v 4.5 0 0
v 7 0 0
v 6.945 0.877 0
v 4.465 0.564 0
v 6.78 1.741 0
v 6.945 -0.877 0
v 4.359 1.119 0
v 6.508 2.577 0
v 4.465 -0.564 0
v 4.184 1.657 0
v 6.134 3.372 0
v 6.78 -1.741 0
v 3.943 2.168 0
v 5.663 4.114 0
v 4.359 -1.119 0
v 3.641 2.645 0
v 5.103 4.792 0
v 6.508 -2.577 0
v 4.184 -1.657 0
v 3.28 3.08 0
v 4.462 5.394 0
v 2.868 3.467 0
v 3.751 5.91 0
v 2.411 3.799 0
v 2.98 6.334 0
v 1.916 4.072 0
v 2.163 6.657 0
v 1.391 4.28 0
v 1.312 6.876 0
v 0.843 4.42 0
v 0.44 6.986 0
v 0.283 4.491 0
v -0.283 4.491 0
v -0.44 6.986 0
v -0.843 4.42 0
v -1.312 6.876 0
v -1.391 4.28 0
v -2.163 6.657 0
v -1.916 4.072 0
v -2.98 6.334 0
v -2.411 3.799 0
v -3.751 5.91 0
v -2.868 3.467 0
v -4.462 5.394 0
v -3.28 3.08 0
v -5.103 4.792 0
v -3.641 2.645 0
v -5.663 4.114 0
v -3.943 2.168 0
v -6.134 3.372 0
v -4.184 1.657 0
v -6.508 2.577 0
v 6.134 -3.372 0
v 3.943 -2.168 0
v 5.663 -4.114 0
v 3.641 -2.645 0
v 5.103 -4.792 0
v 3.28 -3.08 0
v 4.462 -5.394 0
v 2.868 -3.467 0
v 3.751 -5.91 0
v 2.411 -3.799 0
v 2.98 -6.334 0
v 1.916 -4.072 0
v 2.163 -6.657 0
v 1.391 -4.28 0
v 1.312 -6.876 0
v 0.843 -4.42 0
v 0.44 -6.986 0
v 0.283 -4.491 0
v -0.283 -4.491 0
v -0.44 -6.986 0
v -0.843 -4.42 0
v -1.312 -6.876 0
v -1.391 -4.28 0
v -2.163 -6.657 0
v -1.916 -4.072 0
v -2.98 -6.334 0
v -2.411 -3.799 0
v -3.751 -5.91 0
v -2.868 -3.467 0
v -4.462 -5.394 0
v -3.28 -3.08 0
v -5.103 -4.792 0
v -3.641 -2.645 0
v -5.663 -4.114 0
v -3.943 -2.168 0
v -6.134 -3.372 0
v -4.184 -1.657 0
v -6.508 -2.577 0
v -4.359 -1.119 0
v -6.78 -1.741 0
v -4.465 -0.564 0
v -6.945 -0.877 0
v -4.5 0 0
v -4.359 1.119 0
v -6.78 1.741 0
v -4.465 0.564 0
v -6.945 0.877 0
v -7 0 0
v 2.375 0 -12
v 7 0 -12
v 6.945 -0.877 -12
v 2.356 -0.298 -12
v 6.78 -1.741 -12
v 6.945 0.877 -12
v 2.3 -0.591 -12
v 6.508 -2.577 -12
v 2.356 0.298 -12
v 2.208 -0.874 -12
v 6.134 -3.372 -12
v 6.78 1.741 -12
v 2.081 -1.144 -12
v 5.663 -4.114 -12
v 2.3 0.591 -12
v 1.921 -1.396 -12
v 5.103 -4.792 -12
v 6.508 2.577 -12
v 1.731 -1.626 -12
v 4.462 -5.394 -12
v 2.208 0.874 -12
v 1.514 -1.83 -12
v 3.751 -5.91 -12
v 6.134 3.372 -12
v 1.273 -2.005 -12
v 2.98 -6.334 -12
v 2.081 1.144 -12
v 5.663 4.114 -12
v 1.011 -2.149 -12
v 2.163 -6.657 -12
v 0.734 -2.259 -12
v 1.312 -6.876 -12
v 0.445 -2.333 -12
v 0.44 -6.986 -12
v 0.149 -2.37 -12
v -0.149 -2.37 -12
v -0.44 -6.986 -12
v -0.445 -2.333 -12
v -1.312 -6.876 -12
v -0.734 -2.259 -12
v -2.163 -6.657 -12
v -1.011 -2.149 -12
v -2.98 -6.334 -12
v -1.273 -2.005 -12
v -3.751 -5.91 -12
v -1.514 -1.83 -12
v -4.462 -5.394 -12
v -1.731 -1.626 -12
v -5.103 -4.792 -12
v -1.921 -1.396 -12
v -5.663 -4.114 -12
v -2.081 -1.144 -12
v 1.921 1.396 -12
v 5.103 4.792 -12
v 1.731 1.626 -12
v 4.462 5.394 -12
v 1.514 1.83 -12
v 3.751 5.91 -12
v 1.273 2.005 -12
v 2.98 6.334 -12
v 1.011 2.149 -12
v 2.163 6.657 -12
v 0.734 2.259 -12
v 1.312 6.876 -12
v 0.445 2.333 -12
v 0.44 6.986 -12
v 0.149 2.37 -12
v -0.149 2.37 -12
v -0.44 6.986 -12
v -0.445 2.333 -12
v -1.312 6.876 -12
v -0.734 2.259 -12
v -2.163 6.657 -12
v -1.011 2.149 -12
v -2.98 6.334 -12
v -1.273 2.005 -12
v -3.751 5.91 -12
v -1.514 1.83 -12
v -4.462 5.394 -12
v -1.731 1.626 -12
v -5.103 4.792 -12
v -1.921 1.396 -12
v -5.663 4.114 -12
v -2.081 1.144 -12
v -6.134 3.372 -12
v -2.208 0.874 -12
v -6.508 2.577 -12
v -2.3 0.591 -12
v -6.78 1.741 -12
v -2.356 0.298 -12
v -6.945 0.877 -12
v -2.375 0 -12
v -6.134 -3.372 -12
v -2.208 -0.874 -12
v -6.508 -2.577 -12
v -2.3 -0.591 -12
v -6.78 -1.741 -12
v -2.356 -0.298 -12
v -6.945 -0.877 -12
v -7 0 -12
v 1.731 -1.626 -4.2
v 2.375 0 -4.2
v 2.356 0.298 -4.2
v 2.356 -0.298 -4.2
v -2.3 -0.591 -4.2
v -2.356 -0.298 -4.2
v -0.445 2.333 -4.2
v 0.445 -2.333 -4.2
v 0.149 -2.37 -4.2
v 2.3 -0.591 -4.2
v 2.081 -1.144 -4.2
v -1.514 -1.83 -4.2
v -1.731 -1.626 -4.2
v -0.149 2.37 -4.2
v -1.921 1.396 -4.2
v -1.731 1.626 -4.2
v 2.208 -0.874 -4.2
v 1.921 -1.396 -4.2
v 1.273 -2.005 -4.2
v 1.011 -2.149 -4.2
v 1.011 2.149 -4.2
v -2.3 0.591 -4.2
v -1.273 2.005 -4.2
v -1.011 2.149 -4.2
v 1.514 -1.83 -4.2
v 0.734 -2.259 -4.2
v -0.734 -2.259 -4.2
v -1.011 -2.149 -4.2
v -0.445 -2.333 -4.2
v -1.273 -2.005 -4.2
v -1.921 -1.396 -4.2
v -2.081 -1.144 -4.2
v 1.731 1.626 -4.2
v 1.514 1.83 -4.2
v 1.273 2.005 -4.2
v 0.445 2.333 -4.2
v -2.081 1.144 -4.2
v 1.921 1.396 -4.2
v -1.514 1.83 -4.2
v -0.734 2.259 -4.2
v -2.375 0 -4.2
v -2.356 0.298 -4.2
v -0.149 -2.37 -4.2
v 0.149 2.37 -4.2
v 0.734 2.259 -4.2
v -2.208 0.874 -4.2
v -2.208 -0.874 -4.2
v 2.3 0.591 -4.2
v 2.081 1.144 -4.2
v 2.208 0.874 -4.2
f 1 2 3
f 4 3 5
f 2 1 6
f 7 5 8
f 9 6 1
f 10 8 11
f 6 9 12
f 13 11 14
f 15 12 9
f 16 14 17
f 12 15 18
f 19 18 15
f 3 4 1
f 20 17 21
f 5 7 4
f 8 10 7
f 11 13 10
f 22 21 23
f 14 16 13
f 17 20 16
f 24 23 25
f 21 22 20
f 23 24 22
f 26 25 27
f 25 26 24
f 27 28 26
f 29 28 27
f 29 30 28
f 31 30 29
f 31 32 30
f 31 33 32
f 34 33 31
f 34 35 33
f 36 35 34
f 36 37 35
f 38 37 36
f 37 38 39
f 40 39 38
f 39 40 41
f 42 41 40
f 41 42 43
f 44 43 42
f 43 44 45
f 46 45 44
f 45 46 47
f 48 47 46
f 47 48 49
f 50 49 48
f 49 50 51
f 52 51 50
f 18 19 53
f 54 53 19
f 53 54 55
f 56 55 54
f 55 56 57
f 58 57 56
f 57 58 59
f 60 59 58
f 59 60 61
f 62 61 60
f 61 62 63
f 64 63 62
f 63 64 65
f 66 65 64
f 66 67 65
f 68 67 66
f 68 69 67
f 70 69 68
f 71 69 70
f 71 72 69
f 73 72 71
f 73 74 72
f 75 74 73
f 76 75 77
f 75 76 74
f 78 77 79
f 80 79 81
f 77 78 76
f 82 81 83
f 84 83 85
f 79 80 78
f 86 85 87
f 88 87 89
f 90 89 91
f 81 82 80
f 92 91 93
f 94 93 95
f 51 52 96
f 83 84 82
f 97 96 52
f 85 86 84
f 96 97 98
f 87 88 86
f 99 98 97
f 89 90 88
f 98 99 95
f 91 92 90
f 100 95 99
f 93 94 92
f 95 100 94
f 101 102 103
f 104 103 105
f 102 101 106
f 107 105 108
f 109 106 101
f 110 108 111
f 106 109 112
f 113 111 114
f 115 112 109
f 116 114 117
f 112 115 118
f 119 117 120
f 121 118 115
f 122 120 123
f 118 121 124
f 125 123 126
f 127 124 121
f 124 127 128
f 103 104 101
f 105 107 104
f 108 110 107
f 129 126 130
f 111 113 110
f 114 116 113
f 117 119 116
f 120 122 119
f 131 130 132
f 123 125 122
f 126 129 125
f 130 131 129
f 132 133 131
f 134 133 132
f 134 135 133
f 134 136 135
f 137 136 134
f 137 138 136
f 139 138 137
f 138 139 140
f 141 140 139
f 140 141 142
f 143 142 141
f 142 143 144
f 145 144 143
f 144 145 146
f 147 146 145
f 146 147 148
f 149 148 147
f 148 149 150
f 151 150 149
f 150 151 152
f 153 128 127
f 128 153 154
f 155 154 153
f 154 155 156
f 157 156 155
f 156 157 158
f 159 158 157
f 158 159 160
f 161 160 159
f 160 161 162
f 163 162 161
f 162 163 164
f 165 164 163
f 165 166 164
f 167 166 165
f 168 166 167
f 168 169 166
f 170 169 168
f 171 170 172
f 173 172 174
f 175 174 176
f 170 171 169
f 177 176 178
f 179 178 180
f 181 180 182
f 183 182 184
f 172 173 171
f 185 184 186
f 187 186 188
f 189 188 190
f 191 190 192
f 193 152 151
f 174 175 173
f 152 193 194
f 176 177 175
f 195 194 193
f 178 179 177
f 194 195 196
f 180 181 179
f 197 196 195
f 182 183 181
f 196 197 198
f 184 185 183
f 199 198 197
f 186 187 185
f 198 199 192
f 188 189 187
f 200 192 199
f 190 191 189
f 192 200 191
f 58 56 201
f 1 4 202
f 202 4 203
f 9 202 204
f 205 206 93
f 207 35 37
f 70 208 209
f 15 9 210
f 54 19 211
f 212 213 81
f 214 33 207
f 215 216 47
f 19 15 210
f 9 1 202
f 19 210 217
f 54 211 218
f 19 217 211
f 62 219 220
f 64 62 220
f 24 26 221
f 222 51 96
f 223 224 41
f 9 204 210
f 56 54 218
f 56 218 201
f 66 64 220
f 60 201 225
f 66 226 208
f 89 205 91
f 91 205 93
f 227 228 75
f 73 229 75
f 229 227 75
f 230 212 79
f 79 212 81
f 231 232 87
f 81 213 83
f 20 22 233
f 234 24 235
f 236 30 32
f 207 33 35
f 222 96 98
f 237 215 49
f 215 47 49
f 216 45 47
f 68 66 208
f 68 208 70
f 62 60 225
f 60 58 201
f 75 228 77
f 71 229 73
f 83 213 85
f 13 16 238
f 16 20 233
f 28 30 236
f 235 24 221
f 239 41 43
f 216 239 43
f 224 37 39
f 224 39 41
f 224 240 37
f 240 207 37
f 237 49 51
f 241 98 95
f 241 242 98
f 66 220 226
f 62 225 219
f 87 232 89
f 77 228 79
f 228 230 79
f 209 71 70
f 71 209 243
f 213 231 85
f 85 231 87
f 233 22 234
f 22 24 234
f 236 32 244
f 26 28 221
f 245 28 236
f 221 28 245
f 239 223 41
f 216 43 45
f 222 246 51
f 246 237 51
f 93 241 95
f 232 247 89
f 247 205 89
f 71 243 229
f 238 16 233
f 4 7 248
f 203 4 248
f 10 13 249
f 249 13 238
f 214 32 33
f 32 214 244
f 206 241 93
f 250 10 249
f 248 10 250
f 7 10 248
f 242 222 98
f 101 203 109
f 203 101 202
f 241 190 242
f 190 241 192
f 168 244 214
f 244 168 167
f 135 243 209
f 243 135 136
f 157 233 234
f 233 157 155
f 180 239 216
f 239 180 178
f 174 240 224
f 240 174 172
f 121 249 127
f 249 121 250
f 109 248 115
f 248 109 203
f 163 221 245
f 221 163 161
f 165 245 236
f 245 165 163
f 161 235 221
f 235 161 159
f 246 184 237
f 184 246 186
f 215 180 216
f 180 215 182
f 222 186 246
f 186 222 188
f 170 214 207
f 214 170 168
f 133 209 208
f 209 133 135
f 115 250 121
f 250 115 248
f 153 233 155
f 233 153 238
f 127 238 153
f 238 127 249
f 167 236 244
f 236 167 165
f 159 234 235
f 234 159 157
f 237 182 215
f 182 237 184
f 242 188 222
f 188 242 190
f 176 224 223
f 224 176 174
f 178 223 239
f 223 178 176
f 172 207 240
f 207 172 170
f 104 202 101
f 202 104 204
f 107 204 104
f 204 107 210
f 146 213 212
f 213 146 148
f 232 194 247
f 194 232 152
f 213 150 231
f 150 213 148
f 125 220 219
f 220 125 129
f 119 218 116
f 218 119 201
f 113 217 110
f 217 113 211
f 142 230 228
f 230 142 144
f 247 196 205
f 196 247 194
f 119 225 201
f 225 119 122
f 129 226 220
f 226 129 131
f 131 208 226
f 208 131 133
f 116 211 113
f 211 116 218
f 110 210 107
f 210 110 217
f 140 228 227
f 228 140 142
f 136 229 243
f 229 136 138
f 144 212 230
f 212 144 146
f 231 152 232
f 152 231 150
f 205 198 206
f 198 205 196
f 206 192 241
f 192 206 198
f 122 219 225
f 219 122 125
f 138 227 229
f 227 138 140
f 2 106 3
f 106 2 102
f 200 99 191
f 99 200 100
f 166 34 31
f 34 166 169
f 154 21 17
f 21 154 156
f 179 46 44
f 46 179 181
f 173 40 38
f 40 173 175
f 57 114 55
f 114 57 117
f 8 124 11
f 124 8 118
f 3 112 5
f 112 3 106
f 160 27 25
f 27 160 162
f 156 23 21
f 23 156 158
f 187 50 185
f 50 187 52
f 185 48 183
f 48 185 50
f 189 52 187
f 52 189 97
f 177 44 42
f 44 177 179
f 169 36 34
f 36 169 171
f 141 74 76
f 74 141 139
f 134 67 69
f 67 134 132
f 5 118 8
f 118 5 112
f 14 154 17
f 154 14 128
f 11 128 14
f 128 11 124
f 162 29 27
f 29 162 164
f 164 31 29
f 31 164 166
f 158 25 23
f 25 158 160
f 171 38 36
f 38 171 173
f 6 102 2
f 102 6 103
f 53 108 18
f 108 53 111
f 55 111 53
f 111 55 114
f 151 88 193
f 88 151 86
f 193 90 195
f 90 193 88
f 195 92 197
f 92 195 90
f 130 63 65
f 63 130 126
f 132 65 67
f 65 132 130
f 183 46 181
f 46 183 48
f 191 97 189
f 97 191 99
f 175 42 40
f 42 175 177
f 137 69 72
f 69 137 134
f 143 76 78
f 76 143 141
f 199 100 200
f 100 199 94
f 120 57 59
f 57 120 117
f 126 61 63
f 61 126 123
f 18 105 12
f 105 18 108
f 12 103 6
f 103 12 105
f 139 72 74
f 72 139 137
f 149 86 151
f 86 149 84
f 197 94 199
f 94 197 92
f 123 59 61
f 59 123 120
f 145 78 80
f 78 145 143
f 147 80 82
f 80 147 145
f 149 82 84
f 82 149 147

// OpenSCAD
$fn = 50;


difference() {
	union() {
		translate(v = [0, 0, -12.0000000000]) {
			cylinder(h = 12, r = 7.0000000000);
		}
		cylinder(h = 0, r = 13.0000000000);
	}
	union() {
		translate(v = [0, 0, 0]) {
			rotate(a = [0, 0, 0]) {
				difference() {
					union() {
						#translate(v = [0, 0, -12.0000000000]) {
							cylinder(h = 12, r = 2.2500000000);
						}
						#translate(v = [0, 0, -4.2000000000]) {
							cylinder(h = 4.2000000000, r = 7.0000000000, r1 = 2.3750000000, r2 = 4.5000000000);
						}
						#translate(v = [0, 0, -12.0000000000]) {
							cylinder(h = 12, r = 2.3750000000);
						}
						#translate(v = [0, 0, -12.0000000000]) {
							cylinder(h = 12, r = 2.2500000000);
						}
					}
					union();
				}
			}
		}
	}
}
